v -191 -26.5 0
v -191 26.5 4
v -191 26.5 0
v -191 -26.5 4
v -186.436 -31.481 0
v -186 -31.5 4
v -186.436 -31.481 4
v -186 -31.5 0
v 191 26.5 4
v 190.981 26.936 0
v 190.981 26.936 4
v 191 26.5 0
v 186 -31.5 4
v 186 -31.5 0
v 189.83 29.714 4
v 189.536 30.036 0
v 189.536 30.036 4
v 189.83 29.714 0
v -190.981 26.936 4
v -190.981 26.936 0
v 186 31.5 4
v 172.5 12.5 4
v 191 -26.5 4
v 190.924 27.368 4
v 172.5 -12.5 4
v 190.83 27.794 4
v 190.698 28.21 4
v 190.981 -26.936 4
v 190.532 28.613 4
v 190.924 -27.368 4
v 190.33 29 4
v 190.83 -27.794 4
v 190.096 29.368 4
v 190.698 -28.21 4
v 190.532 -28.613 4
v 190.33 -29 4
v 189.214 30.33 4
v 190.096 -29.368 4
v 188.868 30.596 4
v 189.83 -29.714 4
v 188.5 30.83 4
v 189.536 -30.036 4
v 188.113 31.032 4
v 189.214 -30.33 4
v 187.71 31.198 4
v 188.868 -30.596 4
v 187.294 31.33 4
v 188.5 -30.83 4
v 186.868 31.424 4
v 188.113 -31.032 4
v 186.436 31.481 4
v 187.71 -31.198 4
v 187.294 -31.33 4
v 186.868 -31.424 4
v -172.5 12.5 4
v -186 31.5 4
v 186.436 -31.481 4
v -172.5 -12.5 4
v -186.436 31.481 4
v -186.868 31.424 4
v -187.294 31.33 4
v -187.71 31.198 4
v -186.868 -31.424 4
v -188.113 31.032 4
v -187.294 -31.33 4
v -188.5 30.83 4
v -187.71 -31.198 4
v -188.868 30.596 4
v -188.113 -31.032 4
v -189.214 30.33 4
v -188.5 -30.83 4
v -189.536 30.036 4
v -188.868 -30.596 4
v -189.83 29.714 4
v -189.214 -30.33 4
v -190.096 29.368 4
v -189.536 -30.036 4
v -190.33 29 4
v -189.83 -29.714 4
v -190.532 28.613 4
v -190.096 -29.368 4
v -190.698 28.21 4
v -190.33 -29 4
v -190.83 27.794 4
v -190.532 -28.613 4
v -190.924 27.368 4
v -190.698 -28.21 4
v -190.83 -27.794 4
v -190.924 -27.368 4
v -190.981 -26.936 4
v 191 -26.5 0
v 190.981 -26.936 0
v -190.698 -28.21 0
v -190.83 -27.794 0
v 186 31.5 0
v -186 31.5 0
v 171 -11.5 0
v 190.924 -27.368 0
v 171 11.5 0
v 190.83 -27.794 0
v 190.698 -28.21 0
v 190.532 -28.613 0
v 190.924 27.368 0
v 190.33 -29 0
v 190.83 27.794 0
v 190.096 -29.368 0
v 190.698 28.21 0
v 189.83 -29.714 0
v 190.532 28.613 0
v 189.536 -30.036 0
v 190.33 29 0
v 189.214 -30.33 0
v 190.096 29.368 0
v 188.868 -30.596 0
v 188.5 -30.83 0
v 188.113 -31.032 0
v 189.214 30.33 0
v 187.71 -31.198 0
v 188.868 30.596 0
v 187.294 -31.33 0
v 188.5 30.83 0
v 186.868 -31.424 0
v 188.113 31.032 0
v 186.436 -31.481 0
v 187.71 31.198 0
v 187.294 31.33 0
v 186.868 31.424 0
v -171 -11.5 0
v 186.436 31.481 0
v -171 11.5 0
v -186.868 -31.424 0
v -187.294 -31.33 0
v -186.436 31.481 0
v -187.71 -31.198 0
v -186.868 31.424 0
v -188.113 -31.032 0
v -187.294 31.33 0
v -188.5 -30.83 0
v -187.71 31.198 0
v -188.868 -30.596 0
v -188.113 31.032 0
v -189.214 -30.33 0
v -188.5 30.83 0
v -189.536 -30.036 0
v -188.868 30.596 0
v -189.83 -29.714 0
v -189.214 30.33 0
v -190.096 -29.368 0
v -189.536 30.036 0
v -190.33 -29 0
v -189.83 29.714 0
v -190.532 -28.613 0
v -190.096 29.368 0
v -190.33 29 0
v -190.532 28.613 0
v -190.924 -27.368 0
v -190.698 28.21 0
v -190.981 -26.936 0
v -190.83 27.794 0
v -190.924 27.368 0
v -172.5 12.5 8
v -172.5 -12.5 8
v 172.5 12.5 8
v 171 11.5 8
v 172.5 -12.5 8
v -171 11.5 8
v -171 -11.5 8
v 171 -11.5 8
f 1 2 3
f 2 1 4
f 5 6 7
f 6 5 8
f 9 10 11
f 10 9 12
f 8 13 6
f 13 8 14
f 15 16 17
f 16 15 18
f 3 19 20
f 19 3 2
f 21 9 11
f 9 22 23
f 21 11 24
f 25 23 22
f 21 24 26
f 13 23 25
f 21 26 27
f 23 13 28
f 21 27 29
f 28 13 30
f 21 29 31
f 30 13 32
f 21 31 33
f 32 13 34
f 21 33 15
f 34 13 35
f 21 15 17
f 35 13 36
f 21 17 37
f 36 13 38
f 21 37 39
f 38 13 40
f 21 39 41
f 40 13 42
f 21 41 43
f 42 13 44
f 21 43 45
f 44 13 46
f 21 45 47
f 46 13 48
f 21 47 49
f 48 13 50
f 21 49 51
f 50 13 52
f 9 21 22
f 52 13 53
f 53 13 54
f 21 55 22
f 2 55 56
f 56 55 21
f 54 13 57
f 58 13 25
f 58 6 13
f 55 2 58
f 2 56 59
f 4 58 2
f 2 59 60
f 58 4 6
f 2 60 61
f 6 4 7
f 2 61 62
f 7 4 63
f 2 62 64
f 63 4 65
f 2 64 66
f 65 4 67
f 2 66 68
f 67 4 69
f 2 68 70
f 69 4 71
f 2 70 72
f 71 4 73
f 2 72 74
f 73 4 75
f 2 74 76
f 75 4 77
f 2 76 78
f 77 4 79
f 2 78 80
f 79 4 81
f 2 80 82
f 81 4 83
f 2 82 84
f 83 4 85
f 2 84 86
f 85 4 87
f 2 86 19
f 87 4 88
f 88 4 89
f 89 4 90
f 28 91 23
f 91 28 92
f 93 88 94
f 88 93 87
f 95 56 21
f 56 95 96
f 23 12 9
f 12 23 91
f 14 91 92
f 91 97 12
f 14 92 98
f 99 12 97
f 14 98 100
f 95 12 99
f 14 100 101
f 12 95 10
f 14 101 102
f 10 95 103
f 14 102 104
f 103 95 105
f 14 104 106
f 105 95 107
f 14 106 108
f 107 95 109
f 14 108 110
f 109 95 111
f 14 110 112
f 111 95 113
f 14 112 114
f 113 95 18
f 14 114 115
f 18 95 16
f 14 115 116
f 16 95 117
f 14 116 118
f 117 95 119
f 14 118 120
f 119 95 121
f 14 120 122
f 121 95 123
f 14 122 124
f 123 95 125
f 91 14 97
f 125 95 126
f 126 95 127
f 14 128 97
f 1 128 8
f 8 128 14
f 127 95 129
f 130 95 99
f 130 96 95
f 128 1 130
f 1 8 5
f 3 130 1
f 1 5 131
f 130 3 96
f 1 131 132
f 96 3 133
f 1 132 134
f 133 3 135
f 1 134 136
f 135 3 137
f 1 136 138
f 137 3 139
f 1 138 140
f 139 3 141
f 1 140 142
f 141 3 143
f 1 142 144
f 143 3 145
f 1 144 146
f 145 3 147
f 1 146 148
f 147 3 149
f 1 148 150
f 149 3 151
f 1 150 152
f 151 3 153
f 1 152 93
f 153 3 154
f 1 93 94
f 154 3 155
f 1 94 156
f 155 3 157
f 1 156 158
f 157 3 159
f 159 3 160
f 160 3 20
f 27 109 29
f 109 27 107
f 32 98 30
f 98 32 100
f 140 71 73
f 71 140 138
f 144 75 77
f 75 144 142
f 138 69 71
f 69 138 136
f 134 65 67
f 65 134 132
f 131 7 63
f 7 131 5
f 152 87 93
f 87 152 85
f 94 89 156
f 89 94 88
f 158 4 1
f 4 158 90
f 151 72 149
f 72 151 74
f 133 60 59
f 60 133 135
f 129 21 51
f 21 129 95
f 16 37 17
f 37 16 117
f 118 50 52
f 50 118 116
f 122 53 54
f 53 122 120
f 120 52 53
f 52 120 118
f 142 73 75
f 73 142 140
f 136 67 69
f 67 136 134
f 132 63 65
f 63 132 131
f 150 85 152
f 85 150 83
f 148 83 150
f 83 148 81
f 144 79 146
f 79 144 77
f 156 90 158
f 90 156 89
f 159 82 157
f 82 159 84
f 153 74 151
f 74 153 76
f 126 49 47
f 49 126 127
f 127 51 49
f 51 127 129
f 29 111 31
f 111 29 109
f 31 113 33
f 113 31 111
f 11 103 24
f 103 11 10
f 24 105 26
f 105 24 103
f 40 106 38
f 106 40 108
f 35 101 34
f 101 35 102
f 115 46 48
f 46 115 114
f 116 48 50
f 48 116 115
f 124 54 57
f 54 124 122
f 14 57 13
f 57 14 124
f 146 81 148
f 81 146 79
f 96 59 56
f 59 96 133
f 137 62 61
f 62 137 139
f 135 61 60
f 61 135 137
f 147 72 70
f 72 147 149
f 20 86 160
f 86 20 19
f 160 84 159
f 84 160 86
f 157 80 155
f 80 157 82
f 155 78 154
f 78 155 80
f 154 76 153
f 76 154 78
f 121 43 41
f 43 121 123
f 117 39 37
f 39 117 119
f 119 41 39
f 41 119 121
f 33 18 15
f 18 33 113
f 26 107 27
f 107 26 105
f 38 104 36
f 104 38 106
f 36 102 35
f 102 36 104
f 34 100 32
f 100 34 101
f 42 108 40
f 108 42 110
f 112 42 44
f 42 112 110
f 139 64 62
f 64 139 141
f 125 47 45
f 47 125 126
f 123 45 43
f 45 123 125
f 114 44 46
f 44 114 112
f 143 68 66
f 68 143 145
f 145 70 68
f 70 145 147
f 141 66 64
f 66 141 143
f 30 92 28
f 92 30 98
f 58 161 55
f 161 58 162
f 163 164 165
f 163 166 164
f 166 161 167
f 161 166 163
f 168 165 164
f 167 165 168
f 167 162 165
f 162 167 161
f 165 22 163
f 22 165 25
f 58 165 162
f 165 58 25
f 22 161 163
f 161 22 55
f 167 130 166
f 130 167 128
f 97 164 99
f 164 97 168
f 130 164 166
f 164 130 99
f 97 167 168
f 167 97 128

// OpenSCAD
$fa=5; $fs=0.1;

R=5;
H=4;
Llamp=342;
Wlamp=23;
Lhole=345;
Whole=25;

difference(){
	union(){
        hull(){
            //пластина
            translate([-Llamp/2 - 20 + R, -Wlamp/2 - 20 + R, H/2]) cylinder(r=R, h=H, center=true);
            translate([-Llamp/2 - 20 + R, Wlamp/2 + 20 - R, H/2]) cylinder(r=R, h=H, center=true);
            translate([Llamp/2 + 20 - R, -Wlamp/2 - 20 + R, H/2]) cylinder(r=R, h=H, center=true);
            translate([Llamp/2 + 20 - R, Wlamp/2 + 20 - R, H/2]) cylinder(r=R, h=H, center=true);
        }    
        
        //выступ
        translate([0,0, H+ H/2]) cube([Lhole, Whole, H], center=true);
	}

	union(){
        //вырез под лампу
        translate([0,0, H]) cube([Llamp, Wlamp, H*2], center=true);
	}
}
